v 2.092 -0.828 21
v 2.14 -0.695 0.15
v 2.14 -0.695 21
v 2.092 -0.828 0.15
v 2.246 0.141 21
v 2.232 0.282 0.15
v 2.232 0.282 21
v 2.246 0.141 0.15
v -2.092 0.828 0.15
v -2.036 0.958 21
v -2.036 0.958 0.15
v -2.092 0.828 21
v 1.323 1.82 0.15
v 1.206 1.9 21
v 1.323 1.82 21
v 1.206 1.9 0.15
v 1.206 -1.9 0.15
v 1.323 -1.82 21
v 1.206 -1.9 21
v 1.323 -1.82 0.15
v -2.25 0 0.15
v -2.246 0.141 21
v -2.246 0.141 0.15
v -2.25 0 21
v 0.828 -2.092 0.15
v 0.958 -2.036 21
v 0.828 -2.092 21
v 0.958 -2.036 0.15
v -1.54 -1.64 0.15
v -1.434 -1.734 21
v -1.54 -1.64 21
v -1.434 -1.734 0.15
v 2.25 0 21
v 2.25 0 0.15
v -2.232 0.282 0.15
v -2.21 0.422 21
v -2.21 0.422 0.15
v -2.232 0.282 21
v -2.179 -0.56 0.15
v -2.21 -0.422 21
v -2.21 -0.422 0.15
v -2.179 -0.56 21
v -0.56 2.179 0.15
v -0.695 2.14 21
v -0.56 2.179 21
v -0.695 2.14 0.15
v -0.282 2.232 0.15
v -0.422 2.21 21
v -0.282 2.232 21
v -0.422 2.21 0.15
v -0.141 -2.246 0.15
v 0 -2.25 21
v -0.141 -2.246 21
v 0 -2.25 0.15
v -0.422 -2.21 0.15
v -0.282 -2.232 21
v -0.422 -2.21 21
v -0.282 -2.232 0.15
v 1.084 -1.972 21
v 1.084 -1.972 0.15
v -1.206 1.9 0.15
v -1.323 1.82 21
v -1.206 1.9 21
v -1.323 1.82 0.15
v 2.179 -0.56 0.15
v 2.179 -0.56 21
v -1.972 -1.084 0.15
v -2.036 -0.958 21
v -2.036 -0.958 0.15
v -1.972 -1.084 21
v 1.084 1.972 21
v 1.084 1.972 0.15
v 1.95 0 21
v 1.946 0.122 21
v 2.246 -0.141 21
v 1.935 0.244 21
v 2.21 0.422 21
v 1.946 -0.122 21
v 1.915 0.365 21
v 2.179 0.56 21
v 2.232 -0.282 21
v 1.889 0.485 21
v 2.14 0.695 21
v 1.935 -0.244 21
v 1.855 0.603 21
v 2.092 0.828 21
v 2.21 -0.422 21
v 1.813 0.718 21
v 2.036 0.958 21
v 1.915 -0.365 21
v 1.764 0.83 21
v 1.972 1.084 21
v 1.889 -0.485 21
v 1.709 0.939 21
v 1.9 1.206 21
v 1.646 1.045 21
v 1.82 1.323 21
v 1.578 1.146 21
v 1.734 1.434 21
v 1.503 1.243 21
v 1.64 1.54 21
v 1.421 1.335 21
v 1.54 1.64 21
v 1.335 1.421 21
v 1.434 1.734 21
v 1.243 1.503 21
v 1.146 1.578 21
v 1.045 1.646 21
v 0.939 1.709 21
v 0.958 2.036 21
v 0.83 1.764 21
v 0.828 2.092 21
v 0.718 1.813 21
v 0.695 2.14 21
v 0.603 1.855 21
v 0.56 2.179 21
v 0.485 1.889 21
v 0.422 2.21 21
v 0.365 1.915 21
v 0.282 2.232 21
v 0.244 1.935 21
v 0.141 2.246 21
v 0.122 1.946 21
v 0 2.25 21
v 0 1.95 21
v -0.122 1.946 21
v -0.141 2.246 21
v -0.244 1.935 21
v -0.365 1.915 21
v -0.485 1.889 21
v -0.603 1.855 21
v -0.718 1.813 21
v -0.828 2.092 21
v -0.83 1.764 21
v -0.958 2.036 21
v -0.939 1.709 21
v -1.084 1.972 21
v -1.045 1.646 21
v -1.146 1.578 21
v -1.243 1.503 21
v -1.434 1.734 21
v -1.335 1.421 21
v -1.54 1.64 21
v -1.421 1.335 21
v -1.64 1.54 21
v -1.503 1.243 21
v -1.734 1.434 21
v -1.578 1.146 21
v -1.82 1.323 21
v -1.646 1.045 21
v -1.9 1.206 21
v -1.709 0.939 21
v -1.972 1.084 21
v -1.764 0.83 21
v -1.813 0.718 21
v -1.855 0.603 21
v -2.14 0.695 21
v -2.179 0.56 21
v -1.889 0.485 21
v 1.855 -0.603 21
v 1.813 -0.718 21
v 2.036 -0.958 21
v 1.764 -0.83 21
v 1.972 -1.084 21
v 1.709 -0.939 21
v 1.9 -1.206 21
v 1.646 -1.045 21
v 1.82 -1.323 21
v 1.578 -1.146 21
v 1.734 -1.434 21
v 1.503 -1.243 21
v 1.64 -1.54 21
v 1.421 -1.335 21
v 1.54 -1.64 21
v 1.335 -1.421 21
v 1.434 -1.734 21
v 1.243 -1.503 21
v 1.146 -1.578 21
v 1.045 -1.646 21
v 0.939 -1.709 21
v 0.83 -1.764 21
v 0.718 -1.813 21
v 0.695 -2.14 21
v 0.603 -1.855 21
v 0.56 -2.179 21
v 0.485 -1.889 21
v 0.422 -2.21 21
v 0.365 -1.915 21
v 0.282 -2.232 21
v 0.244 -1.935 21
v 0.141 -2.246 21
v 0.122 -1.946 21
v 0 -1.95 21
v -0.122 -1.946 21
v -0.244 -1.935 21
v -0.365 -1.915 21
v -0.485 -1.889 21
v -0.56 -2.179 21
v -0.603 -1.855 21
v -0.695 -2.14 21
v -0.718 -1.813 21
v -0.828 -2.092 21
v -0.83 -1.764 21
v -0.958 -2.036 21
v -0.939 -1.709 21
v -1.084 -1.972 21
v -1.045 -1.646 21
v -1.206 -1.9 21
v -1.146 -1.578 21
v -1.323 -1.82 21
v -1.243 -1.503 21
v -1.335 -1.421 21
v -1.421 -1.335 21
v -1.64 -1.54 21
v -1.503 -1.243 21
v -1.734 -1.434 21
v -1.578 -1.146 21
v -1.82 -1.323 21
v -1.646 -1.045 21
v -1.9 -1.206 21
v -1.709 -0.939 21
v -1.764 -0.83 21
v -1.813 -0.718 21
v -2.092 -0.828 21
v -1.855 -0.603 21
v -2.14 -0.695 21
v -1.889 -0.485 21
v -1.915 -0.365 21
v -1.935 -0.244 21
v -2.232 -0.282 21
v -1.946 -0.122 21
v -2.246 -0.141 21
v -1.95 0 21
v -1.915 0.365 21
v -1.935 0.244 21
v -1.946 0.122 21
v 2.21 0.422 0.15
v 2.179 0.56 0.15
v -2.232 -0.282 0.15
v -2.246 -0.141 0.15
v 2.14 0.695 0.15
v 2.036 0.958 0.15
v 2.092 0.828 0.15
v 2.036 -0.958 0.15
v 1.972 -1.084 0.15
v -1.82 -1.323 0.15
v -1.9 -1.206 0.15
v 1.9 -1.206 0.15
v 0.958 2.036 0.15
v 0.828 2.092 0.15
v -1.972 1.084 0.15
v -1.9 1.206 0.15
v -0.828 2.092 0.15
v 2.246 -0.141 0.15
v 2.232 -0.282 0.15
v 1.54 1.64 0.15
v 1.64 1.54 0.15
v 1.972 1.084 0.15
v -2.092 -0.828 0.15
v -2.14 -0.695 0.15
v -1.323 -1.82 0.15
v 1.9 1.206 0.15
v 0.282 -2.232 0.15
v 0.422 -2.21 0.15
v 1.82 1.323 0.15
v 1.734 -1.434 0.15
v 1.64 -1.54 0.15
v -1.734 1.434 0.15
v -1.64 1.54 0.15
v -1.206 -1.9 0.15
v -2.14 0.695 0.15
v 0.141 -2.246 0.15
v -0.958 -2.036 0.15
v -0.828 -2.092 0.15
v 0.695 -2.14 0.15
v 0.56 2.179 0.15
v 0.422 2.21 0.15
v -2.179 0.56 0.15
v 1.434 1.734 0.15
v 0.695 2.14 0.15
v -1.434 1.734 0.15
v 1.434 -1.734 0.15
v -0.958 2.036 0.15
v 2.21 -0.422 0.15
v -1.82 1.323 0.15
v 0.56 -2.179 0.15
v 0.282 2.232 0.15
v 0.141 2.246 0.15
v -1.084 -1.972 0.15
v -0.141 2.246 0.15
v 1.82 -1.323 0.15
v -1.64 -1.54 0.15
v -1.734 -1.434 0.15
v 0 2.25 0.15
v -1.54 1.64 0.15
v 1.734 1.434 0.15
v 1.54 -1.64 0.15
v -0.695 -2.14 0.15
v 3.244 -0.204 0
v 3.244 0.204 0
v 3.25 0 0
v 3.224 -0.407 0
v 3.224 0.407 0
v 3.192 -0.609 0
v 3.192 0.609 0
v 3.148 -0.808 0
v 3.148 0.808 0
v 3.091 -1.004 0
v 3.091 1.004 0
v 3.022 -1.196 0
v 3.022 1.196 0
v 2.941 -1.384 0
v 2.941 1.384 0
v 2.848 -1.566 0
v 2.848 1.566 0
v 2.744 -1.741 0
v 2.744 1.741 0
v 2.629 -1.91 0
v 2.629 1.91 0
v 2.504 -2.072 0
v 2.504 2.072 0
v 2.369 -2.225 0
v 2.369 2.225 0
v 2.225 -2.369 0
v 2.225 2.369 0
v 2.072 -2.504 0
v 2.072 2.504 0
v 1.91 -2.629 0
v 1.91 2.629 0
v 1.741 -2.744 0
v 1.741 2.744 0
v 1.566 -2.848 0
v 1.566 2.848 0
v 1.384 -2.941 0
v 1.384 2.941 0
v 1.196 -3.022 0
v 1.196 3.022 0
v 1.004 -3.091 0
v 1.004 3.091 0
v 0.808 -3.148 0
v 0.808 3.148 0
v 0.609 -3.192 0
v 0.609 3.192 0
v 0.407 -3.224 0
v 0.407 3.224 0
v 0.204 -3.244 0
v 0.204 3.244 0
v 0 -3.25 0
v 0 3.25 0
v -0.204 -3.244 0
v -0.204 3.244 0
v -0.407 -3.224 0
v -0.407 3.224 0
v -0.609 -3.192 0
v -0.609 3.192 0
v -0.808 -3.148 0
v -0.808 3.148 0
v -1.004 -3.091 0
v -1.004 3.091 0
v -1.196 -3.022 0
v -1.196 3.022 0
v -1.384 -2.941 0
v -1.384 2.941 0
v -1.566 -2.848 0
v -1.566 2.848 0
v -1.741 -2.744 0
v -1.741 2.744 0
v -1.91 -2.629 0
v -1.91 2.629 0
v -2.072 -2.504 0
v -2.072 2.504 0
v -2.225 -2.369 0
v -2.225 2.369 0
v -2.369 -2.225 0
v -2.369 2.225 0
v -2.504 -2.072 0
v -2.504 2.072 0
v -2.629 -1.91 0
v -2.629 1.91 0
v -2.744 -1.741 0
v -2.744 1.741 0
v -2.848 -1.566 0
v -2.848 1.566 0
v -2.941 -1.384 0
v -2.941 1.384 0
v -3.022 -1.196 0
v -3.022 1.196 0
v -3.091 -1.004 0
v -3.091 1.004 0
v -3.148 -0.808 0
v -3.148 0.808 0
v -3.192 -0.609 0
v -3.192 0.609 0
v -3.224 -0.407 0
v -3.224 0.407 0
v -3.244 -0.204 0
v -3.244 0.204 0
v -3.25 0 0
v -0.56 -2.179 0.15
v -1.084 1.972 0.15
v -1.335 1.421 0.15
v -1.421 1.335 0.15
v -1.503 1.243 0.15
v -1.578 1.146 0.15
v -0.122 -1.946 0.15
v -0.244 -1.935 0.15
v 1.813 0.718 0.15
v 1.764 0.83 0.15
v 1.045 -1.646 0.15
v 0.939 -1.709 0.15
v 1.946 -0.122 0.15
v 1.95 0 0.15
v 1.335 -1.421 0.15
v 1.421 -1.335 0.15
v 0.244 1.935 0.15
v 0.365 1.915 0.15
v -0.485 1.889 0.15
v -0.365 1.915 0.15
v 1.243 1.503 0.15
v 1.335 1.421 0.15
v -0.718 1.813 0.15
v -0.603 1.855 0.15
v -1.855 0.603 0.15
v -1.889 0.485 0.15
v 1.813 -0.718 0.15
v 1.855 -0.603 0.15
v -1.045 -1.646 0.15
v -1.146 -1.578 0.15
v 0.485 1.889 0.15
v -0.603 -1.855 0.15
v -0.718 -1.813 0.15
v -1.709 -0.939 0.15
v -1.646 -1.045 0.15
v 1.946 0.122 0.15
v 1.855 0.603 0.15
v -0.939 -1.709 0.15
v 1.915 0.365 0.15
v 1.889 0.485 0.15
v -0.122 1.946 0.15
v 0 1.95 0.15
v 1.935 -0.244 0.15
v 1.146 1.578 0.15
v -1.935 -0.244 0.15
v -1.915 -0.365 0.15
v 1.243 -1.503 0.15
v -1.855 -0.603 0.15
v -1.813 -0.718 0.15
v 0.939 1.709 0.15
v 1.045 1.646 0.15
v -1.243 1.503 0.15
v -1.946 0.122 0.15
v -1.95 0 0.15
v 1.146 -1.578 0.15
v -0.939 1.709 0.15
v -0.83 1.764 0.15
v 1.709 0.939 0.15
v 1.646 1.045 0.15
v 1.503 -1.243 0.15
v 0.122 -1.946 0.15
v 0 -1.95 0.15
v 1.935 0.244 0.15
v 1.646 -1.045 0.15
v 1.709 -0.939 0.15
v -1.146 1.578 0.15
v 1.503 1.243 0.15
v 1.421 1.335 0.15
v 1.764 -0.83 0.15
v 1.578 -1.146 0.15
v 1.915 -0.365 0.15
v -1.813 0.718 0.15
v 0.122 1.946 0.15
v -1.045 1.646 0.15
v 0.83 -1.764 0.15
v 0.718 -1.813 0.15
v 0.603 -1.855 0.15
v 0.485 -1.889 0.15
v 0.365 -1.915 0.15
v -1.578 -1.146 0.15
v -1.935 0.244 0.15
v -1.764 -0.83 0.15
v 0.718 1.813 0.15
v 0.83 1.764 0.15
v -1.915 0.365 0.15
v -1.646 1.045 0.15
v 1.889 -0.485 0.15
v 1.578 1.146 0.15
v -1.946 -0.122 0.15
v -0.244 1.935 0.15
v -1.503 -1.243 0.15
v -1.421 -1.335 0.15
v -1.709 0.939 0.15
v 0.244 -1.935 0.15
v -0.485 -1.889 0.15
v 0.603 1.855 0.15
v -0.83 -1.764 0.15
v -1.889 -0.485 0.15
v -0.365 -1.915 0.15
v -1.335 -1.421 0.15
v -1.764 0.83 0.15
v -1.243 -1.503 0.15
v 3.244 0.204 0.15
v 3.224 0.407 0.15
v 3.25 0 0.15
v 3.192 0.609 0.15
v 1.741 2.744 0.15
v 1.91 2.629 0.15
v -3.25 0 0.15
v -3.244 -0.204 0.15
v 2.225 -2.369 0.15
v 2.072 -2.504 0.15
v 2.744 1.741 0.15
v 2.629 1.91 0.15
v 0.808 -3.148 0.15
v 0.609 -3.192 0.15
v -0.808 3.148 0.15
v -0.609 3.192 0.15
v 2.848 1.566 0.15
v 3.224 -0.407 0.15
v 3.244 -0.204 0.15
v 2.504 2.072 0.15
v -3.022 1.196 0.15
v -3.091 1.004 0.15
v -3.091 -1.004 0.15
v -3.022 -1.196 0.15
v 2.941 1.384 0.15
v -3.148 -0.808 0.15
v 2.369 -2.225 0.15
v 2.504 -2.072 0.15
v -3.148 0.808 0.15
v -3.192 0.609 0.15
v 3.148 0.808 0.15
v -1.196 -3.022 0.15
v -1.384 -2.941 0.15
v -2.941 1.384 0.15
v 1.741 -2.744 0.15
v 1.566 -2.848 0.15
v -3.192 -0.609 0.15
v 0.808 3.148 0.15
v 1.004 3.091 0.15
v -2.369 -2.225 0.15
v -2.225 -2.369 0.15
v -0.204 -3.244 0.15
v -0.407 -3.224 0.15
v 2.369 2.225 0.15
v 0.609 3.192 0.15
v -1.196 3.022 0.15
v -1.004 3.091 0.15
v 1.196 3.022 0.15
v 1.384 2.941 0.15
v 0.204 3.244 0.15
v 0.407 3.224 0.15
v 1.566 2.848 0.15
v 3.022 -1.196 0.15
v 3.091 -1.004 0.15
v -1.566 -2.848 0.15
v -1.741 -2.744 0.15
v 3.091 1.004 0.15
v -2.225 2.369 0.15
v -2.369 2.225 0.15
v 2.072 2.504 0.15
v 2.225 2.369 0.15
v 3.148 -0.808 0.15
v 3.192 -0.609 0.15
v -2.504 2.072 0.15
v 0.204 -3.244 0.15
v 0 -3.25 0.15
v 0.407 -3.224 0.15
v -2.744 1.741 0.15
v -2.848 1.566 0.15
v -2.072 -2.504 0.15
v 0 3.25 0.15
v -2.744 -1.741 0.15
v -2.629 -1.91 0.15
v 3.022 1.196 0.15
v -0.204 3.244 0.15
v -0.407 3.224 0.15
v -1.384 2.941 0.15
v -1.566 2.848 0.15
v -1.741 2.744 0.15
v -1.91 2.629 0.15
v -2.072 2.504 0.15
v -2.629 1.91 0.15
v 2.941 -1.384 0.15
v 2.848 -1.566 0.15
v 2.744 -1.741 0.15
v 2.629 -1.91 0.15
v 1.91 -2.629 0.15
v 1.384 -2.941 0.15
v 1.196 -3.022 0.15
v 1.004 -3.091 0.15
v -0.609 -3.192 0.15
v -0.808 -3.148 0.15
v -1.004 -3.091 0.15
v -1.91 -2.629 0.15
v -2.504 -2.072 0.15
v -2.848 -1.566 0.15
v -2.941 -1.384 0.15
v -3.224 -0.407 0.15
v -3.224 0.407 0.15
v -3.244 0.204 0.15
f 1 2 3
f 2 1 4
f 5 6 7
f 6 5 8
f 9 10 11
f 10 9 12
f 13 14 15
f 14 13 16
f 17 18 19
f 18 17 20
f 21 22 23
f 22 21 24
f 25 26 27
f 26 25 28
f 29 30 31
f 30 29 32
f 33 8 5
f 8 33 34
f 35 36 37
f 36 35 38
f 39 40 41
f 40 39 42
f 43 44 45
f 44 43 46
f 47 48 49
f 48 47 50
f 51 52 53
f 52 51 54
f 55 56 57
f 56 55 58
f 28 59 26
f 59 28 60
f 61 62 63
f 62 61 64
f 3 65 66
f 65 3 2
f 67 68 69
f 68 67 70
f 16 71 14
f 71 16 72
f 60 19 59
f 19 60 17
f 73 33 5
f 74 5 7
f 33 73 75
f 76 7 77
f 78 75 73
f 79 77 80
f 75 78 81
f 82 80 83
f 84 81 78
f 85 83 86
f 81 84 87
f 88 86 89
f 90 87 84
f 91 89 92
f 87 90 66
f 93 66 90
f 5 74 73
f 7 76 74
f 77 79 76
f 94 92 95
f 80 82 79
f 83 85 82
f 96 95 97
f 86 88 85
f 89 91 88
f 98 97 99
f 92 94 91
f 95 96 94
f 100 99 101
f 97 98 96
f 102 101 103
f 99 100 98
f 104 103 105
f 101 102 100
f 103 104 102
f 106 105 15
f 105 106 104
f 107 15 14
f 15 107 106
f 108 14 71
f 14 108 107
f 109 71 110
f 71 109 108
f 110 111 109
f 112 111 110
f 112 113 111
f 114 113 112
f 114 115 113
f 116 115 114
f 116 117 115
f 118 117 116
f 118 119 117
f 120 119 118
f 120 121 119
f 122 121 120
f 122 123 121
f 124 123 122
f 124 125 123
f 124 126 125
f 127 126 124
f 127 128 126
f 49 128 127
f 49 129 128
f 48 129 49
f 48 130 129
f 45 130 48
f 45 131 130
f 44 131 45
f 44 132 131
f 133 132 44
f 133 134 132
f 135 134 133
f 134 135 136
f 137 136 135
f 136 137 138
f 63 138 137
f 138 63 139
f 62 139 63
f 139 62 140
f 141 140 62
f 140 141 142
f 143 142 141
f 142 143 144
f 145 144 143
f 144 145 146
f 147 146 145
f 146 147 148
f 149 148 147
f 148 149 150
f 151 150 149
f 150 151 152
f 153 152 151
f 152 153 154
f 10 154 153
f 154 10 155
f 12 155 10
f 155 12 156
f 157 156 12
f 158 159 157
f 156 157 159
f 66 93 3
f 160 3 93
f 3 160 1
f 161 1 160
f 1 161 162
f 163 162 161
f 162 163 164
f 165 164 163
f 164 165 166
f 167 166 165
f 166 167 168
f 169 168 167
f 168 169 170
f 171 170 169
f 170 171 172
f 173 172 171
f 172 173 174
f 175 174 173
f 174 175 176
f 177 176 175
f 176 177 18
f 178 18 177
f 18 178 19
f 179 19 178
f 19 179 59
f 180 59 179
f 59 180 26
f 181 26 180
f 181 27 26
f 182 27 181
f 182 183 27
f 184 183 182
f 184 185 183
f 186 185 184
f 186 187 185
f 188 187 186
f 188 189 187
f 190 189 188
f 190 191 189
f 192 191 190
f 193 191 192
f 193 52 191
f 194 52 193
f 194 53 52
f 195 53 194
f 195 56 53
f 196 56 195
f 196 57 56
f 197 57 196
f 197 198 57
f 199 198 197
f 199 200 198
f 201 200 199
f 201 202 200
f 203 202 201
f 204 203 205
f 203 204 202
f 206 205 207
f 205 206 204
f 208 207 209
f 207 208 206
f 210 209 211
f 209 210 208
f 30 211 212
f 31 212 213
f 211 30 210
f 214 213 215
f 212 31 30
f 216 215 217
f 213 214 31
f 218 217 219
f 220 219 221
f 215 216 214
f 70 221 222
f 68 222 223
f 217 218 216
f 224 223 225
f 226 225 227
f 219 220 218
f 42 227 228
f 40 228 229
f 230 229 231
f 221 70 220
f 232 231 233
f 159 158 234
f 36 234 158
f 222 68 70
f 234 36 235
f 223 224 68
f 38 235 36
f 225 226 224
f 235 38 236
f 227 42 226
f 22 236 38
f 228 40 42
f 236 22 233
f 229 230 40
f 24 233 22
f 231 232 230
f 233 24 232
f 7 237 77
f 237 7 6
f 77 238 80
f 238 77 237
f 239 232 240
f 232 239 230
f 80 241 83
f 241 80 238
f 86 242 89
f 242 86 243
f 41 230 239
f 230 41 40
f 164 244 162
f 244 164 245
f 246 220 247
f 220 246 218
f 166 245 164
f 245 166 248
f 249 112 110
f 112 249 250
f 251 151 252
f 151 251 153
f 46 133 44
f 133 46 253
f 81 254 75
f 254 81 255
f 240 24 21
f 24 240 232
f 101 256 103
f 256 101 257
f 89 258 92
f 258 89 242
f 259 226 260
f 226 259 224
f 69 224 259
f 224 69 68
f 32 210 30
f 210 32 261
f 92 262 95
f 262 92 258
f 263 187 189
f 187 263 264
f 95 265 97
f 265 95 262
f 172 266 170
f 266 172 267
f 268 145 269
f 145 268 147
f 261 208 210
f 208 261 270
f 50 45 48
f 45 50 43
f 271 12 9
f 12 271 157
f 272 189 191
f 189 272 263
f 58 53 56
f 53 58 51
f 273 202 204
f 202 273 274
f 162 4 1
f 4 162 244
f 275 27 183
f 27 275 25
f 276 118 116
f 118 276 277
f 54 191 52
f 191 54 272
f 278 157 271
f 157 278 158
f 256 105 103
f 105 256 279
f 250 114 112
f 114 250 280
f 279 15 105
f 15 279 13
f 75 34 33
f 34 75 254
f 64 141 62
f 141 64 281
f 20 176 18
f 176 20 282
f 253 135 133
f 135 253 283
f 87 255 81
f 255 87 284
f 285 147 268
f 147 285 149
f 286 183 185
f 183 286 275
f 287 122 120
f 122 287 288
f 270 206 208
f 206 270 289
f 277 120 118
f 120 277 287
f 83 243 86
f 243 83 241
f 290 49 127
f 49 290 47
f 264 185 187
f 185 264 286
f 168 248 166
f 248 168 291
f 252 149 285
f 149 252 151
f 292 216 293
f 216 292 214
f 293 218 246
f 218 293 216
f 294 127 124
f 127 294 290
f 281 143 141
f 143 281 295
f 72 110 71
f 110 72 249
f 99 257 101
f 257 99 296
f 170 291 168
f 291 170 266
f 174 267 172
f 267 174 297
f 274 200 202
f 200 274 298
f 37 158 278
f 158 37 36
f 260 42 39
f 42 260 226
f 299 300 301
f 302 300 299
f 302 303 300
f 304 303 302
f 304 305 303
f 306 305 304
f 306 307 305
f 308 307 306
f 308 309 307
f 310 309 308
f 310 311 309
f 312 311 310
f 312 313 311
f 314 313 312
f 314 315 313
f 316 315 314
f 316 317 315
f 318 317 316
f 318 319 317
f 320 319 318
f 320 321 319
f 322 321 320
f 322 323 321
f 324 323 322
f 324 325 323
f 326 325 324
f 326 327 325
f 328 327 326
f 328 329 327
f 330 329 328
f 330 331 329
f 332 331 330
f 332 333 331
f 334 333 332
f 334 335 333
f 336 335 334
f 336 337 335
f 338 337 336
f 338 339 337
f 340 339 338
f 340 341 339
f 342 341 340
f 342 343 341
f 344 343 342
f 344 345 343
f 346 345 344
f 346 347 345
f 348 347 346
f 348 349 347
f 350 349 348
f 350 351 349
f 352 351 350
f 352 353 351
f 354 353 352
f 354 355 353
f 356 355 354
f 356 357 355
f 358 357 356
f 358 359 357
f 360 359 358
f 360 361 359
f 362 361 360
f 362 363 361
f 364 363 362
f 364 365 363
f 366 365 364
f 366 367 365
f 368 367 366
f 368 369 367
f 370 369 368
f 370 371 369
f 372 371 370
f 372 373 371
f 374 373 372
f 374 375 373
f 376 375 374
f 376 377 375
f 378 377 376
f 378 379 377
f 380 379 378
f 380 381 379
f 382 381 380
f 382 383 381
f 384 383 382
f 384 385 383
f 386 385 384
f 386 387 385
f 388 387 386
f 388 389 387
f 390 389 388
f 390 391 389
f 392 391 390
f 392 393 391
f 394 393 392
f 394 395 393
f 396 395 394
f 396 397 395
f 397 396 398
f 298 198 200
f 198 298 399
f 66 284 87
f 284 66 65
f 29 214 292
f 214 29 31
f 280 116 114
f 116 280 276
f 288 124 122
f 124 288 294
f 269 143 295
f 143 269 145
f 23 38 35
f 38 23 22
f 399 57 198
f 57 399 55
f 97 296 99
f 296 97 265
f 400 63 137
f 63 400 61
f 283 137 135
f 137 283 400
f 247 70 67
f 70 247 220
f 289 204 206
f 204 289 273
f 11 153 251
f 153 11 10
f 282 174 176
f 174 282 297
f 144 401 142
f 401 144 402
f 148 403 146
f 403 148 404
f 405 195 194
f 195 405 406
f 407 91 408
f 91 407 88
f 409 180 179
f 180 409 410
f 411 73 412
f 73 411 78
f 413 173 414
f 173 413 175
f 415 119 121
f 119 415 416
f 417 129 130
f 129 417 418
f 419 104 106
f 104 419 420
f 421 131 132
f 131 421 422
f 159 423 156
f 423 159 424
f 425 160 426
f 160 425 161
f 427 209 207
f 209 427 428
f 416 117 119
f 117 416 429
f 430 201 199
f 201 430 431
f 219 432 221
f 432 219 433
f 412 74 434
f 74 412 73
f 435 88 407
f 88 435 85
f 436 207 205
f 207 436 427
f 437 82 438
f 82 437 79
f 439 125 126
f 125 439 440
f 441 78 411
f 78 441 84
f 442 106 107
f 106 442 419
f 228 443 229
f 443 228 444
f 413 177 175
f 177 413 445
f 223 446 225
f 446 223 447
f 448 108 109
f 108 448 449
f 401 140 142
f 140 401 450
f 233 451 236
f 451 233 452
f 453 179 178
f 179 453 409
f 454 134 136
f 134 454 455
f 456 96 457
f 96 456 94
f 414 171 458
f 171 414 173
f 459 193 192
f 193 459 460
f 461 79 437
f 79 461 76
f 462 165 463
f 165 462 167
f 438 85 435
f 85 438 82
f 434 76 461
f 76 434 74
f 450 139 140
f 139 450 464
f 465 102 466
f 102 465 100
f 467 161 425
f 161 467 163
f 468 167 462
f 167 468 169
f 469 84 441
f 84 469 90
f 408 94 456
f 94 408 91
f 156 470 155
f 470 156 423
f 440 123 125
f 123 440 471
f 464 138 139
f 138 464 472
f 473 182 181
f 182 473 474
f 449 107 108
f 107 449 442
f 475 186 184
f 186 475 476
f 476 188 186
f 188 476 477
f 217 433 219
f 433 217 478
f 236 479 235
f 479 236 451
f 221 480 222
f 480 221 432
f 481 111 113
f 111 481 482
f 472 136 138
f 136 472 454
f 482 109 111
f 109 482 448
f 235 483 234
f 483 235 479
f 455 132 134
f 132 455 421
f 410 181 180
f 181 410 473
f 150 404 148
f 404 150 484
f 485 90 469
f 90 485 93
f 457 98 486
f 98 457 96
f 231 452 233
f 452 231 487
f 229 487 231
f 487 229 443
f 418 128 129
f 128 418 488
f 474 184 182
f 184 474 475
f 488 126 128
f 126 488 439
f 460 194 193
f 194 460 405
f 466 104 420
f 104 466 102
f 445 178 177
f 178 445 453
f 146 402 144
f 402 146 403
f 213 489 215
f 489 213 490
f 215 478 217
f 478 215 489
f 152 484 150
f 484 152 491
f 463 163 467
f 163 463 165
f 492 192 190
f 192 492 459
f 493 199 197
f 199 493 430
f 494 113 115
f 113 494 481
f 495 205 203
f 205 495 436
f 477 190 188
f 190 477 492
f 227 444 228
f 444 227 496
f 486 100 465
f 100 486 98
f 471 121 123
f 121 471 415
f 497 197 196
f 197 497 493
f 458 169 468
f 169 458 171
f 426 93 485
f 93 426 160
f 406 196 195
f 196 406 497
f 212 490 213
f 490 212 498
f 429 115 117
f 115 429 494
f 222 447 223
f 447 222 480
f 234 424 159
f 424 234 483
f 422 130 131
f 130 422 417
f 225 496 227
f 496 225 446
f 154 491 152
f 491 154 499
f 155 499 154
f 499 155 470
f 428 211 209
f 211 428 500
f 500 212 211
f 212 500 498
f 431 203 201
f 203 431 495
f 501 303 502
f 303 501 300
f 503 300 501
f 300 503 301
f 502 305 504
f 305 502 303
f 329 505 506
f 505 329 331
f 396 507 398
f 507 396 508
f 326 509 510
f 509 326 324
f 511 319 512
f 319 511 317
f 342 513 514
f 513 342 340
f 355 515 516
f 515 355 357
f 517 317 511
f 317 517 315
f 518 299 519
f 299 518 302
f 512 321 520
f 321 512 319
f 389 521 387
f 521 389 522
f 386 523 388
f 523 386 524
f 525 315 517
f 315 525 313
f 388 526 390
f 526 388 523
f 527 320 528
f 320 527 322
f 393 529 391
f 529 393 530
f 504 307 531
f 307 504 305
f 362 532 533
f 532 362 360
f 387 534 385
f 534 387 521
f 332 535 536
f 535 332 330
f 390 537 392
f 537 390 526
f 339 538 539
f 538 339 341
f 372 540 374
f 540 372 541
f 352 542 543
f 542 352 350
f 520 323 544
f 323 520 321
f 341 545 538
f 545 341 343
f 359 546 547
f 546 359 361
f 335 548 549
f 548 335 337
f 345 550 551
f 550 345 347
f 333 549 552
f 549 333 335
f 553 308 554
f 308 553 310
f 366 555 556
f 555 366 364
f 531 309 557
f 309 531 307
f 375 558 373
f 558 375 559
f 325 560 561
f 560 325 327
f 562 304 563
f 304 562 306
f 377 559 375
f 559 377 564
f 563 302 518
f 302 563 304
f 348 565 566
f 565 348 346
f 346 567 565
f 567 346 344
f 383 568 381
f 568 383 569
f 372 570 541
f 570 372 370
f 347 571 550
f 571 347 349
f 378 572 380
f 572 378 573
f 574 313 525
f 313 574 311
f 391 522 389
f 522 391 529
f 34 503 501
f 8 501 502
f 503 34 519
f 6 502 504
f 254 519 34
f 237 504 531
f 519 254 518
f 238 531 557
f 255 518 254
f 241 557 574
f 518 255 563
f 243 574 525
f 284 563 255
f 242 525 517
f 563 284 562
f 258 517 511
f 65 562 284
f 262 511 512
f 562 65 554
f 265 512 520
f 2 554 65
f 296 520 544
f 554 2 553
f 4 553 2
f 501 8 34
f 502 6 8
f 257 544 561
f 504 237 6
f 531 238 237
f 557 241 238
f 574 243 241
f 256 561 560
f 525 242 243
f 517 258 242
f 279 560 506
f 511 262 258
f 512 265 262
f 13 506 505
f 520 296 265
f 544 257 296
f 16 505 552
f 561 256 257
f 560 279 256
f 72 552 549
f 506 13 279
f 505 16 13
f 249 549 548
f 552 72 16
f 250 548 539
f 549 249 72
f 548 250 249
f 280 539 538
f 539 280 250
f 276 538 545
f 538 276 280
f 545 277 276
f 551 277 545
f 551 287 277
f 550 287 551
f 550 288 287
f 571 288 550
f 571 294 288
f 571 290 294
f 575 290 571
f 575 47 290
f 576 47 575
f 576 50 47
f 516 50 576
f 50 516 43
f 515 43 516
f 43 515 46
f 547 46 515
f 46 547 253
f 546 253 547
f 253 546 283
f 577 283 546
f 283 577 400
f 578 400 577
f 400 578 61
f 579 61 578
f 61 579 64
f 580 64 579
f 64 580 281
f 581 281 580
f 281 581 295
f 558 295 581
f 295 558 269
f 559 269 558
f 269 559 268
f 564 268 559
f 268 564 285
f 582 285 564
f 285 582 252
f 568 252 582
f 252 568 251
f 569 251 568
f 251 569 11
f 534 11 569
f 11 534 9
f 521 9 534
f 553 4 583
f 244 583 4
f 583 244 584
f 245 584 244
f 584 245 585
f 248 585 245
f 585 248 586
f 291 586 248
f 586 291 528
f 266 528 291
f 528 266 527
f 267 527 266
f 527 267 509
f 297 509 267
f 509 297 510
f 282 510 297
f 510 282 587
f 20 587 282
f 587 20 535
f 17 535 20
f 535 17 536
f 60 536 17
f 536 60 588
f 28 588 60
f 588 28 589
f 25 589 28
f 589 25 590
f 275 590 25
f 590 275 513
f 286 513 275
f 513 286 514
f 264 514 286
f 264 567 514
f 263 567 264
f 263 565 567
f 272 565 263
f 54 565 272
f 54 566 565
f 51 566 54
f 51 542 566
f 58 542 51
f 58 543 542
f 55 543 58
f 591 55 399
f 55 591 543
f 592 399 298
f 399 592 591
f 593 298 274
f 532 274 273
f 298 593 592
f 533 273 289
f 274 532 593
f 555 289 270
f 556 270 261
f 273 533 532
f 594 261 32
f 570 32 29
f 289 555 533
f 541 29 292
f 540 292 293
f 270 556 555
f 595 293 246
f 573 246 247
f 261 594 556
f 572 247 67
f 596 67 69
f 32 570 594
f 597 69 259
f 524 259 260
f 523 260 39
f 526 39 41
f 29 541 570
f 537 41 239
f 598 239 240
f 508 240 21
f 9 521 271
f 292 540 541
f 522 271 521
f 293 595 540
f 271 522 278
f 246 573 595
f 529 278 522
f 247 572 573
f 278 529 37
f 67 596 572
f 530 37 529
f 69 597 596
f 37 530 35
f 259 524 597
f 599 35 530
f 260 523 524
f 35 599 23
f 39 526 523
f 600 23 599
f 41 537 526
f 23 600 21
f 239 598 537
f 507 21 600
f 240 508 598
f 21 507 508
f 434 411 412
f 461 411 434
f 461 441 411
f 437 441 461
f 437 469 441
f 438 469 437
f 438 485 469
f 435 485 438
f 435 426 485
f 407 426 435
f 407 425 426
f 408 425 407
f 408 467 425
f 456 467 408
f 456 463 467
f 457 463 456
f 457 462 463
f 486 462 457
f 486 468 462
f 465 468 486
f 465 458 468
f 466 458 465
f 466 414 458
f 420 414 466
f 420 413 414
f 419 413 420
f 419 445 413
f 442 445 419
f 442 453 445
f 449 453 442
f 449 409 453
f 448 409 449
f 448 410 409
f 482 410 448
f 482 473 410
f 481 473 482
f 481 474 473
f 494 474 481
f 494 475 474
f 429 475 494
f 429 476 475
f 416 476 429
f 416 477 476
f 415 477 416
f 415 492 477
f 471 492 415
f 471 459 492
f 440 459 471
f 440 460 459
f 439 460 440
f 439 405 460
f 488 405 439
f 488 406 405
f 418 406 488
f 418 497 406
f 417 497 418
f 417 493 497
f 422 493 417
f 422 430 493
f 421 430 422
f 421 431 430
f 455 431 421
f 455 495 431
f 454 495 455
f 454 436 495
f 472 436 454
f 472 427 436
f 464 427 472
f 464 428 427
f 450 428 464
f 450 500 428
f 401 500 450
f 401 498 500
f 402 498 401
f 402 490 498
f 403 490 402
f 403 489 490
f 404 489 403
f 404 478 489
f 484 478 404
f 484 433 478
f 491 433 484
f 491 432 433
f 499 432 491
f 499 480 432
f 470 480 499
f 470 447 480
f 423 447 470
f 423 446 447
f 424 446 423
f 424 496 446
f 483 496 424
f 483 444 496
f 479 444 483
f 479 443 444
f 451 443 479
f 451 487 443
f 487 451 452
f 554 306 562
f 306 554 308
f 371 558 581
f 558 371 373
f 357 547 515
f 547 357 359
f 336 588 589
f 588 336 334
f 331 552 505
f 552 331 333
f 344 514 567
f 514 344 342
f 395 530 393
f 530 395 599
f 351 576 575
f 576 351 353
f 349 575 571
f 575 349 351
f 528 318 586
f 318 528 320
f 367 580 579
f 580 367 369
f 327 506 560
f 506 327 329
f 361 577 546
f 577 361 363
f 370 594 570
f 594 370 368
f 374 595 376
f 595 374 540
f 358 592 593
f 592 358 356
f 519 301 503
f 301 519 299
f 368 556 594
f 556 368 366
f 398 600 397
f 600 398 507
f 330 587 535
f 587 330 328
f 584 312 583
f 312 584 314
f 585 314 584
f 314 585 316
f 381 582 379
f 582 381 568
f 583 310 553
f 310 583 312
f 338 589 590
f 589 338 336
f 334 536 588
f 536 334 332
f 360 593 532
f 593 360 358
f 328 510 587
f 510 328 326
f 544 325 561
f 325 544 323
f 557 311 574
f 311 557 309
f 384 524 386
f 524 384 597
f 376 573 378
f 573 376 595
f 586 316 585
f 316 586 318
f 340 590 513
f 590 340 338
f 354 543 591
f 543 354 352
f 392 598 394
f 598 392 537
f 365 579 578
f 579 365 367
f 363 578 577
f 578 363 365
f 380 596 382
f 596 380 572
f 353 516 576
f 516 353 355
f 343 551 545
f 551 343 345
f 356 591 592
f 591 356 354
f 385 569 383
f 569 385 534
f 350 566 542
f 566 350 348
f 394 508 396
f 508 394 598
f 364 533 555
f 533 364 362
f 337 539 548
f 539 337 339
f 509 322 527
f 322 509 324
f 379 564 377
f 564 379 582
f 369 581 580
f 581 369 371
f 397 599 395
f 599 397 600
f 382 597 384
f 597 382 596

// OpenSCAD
$fn=100;
fudge=0.01;


lightTube(21,2.25);

module lightTube(height, radius, lipClearance=1, layerDimension=0.15) {
    union() {
        difference() {
            cylinder(h=height, r=radius);
            cylinder(h=height+fudge, r=radius-2*layerDimension);
        }
        cylinder(h=layerDimension, r=radius+lipClearance);
    }
}
    
